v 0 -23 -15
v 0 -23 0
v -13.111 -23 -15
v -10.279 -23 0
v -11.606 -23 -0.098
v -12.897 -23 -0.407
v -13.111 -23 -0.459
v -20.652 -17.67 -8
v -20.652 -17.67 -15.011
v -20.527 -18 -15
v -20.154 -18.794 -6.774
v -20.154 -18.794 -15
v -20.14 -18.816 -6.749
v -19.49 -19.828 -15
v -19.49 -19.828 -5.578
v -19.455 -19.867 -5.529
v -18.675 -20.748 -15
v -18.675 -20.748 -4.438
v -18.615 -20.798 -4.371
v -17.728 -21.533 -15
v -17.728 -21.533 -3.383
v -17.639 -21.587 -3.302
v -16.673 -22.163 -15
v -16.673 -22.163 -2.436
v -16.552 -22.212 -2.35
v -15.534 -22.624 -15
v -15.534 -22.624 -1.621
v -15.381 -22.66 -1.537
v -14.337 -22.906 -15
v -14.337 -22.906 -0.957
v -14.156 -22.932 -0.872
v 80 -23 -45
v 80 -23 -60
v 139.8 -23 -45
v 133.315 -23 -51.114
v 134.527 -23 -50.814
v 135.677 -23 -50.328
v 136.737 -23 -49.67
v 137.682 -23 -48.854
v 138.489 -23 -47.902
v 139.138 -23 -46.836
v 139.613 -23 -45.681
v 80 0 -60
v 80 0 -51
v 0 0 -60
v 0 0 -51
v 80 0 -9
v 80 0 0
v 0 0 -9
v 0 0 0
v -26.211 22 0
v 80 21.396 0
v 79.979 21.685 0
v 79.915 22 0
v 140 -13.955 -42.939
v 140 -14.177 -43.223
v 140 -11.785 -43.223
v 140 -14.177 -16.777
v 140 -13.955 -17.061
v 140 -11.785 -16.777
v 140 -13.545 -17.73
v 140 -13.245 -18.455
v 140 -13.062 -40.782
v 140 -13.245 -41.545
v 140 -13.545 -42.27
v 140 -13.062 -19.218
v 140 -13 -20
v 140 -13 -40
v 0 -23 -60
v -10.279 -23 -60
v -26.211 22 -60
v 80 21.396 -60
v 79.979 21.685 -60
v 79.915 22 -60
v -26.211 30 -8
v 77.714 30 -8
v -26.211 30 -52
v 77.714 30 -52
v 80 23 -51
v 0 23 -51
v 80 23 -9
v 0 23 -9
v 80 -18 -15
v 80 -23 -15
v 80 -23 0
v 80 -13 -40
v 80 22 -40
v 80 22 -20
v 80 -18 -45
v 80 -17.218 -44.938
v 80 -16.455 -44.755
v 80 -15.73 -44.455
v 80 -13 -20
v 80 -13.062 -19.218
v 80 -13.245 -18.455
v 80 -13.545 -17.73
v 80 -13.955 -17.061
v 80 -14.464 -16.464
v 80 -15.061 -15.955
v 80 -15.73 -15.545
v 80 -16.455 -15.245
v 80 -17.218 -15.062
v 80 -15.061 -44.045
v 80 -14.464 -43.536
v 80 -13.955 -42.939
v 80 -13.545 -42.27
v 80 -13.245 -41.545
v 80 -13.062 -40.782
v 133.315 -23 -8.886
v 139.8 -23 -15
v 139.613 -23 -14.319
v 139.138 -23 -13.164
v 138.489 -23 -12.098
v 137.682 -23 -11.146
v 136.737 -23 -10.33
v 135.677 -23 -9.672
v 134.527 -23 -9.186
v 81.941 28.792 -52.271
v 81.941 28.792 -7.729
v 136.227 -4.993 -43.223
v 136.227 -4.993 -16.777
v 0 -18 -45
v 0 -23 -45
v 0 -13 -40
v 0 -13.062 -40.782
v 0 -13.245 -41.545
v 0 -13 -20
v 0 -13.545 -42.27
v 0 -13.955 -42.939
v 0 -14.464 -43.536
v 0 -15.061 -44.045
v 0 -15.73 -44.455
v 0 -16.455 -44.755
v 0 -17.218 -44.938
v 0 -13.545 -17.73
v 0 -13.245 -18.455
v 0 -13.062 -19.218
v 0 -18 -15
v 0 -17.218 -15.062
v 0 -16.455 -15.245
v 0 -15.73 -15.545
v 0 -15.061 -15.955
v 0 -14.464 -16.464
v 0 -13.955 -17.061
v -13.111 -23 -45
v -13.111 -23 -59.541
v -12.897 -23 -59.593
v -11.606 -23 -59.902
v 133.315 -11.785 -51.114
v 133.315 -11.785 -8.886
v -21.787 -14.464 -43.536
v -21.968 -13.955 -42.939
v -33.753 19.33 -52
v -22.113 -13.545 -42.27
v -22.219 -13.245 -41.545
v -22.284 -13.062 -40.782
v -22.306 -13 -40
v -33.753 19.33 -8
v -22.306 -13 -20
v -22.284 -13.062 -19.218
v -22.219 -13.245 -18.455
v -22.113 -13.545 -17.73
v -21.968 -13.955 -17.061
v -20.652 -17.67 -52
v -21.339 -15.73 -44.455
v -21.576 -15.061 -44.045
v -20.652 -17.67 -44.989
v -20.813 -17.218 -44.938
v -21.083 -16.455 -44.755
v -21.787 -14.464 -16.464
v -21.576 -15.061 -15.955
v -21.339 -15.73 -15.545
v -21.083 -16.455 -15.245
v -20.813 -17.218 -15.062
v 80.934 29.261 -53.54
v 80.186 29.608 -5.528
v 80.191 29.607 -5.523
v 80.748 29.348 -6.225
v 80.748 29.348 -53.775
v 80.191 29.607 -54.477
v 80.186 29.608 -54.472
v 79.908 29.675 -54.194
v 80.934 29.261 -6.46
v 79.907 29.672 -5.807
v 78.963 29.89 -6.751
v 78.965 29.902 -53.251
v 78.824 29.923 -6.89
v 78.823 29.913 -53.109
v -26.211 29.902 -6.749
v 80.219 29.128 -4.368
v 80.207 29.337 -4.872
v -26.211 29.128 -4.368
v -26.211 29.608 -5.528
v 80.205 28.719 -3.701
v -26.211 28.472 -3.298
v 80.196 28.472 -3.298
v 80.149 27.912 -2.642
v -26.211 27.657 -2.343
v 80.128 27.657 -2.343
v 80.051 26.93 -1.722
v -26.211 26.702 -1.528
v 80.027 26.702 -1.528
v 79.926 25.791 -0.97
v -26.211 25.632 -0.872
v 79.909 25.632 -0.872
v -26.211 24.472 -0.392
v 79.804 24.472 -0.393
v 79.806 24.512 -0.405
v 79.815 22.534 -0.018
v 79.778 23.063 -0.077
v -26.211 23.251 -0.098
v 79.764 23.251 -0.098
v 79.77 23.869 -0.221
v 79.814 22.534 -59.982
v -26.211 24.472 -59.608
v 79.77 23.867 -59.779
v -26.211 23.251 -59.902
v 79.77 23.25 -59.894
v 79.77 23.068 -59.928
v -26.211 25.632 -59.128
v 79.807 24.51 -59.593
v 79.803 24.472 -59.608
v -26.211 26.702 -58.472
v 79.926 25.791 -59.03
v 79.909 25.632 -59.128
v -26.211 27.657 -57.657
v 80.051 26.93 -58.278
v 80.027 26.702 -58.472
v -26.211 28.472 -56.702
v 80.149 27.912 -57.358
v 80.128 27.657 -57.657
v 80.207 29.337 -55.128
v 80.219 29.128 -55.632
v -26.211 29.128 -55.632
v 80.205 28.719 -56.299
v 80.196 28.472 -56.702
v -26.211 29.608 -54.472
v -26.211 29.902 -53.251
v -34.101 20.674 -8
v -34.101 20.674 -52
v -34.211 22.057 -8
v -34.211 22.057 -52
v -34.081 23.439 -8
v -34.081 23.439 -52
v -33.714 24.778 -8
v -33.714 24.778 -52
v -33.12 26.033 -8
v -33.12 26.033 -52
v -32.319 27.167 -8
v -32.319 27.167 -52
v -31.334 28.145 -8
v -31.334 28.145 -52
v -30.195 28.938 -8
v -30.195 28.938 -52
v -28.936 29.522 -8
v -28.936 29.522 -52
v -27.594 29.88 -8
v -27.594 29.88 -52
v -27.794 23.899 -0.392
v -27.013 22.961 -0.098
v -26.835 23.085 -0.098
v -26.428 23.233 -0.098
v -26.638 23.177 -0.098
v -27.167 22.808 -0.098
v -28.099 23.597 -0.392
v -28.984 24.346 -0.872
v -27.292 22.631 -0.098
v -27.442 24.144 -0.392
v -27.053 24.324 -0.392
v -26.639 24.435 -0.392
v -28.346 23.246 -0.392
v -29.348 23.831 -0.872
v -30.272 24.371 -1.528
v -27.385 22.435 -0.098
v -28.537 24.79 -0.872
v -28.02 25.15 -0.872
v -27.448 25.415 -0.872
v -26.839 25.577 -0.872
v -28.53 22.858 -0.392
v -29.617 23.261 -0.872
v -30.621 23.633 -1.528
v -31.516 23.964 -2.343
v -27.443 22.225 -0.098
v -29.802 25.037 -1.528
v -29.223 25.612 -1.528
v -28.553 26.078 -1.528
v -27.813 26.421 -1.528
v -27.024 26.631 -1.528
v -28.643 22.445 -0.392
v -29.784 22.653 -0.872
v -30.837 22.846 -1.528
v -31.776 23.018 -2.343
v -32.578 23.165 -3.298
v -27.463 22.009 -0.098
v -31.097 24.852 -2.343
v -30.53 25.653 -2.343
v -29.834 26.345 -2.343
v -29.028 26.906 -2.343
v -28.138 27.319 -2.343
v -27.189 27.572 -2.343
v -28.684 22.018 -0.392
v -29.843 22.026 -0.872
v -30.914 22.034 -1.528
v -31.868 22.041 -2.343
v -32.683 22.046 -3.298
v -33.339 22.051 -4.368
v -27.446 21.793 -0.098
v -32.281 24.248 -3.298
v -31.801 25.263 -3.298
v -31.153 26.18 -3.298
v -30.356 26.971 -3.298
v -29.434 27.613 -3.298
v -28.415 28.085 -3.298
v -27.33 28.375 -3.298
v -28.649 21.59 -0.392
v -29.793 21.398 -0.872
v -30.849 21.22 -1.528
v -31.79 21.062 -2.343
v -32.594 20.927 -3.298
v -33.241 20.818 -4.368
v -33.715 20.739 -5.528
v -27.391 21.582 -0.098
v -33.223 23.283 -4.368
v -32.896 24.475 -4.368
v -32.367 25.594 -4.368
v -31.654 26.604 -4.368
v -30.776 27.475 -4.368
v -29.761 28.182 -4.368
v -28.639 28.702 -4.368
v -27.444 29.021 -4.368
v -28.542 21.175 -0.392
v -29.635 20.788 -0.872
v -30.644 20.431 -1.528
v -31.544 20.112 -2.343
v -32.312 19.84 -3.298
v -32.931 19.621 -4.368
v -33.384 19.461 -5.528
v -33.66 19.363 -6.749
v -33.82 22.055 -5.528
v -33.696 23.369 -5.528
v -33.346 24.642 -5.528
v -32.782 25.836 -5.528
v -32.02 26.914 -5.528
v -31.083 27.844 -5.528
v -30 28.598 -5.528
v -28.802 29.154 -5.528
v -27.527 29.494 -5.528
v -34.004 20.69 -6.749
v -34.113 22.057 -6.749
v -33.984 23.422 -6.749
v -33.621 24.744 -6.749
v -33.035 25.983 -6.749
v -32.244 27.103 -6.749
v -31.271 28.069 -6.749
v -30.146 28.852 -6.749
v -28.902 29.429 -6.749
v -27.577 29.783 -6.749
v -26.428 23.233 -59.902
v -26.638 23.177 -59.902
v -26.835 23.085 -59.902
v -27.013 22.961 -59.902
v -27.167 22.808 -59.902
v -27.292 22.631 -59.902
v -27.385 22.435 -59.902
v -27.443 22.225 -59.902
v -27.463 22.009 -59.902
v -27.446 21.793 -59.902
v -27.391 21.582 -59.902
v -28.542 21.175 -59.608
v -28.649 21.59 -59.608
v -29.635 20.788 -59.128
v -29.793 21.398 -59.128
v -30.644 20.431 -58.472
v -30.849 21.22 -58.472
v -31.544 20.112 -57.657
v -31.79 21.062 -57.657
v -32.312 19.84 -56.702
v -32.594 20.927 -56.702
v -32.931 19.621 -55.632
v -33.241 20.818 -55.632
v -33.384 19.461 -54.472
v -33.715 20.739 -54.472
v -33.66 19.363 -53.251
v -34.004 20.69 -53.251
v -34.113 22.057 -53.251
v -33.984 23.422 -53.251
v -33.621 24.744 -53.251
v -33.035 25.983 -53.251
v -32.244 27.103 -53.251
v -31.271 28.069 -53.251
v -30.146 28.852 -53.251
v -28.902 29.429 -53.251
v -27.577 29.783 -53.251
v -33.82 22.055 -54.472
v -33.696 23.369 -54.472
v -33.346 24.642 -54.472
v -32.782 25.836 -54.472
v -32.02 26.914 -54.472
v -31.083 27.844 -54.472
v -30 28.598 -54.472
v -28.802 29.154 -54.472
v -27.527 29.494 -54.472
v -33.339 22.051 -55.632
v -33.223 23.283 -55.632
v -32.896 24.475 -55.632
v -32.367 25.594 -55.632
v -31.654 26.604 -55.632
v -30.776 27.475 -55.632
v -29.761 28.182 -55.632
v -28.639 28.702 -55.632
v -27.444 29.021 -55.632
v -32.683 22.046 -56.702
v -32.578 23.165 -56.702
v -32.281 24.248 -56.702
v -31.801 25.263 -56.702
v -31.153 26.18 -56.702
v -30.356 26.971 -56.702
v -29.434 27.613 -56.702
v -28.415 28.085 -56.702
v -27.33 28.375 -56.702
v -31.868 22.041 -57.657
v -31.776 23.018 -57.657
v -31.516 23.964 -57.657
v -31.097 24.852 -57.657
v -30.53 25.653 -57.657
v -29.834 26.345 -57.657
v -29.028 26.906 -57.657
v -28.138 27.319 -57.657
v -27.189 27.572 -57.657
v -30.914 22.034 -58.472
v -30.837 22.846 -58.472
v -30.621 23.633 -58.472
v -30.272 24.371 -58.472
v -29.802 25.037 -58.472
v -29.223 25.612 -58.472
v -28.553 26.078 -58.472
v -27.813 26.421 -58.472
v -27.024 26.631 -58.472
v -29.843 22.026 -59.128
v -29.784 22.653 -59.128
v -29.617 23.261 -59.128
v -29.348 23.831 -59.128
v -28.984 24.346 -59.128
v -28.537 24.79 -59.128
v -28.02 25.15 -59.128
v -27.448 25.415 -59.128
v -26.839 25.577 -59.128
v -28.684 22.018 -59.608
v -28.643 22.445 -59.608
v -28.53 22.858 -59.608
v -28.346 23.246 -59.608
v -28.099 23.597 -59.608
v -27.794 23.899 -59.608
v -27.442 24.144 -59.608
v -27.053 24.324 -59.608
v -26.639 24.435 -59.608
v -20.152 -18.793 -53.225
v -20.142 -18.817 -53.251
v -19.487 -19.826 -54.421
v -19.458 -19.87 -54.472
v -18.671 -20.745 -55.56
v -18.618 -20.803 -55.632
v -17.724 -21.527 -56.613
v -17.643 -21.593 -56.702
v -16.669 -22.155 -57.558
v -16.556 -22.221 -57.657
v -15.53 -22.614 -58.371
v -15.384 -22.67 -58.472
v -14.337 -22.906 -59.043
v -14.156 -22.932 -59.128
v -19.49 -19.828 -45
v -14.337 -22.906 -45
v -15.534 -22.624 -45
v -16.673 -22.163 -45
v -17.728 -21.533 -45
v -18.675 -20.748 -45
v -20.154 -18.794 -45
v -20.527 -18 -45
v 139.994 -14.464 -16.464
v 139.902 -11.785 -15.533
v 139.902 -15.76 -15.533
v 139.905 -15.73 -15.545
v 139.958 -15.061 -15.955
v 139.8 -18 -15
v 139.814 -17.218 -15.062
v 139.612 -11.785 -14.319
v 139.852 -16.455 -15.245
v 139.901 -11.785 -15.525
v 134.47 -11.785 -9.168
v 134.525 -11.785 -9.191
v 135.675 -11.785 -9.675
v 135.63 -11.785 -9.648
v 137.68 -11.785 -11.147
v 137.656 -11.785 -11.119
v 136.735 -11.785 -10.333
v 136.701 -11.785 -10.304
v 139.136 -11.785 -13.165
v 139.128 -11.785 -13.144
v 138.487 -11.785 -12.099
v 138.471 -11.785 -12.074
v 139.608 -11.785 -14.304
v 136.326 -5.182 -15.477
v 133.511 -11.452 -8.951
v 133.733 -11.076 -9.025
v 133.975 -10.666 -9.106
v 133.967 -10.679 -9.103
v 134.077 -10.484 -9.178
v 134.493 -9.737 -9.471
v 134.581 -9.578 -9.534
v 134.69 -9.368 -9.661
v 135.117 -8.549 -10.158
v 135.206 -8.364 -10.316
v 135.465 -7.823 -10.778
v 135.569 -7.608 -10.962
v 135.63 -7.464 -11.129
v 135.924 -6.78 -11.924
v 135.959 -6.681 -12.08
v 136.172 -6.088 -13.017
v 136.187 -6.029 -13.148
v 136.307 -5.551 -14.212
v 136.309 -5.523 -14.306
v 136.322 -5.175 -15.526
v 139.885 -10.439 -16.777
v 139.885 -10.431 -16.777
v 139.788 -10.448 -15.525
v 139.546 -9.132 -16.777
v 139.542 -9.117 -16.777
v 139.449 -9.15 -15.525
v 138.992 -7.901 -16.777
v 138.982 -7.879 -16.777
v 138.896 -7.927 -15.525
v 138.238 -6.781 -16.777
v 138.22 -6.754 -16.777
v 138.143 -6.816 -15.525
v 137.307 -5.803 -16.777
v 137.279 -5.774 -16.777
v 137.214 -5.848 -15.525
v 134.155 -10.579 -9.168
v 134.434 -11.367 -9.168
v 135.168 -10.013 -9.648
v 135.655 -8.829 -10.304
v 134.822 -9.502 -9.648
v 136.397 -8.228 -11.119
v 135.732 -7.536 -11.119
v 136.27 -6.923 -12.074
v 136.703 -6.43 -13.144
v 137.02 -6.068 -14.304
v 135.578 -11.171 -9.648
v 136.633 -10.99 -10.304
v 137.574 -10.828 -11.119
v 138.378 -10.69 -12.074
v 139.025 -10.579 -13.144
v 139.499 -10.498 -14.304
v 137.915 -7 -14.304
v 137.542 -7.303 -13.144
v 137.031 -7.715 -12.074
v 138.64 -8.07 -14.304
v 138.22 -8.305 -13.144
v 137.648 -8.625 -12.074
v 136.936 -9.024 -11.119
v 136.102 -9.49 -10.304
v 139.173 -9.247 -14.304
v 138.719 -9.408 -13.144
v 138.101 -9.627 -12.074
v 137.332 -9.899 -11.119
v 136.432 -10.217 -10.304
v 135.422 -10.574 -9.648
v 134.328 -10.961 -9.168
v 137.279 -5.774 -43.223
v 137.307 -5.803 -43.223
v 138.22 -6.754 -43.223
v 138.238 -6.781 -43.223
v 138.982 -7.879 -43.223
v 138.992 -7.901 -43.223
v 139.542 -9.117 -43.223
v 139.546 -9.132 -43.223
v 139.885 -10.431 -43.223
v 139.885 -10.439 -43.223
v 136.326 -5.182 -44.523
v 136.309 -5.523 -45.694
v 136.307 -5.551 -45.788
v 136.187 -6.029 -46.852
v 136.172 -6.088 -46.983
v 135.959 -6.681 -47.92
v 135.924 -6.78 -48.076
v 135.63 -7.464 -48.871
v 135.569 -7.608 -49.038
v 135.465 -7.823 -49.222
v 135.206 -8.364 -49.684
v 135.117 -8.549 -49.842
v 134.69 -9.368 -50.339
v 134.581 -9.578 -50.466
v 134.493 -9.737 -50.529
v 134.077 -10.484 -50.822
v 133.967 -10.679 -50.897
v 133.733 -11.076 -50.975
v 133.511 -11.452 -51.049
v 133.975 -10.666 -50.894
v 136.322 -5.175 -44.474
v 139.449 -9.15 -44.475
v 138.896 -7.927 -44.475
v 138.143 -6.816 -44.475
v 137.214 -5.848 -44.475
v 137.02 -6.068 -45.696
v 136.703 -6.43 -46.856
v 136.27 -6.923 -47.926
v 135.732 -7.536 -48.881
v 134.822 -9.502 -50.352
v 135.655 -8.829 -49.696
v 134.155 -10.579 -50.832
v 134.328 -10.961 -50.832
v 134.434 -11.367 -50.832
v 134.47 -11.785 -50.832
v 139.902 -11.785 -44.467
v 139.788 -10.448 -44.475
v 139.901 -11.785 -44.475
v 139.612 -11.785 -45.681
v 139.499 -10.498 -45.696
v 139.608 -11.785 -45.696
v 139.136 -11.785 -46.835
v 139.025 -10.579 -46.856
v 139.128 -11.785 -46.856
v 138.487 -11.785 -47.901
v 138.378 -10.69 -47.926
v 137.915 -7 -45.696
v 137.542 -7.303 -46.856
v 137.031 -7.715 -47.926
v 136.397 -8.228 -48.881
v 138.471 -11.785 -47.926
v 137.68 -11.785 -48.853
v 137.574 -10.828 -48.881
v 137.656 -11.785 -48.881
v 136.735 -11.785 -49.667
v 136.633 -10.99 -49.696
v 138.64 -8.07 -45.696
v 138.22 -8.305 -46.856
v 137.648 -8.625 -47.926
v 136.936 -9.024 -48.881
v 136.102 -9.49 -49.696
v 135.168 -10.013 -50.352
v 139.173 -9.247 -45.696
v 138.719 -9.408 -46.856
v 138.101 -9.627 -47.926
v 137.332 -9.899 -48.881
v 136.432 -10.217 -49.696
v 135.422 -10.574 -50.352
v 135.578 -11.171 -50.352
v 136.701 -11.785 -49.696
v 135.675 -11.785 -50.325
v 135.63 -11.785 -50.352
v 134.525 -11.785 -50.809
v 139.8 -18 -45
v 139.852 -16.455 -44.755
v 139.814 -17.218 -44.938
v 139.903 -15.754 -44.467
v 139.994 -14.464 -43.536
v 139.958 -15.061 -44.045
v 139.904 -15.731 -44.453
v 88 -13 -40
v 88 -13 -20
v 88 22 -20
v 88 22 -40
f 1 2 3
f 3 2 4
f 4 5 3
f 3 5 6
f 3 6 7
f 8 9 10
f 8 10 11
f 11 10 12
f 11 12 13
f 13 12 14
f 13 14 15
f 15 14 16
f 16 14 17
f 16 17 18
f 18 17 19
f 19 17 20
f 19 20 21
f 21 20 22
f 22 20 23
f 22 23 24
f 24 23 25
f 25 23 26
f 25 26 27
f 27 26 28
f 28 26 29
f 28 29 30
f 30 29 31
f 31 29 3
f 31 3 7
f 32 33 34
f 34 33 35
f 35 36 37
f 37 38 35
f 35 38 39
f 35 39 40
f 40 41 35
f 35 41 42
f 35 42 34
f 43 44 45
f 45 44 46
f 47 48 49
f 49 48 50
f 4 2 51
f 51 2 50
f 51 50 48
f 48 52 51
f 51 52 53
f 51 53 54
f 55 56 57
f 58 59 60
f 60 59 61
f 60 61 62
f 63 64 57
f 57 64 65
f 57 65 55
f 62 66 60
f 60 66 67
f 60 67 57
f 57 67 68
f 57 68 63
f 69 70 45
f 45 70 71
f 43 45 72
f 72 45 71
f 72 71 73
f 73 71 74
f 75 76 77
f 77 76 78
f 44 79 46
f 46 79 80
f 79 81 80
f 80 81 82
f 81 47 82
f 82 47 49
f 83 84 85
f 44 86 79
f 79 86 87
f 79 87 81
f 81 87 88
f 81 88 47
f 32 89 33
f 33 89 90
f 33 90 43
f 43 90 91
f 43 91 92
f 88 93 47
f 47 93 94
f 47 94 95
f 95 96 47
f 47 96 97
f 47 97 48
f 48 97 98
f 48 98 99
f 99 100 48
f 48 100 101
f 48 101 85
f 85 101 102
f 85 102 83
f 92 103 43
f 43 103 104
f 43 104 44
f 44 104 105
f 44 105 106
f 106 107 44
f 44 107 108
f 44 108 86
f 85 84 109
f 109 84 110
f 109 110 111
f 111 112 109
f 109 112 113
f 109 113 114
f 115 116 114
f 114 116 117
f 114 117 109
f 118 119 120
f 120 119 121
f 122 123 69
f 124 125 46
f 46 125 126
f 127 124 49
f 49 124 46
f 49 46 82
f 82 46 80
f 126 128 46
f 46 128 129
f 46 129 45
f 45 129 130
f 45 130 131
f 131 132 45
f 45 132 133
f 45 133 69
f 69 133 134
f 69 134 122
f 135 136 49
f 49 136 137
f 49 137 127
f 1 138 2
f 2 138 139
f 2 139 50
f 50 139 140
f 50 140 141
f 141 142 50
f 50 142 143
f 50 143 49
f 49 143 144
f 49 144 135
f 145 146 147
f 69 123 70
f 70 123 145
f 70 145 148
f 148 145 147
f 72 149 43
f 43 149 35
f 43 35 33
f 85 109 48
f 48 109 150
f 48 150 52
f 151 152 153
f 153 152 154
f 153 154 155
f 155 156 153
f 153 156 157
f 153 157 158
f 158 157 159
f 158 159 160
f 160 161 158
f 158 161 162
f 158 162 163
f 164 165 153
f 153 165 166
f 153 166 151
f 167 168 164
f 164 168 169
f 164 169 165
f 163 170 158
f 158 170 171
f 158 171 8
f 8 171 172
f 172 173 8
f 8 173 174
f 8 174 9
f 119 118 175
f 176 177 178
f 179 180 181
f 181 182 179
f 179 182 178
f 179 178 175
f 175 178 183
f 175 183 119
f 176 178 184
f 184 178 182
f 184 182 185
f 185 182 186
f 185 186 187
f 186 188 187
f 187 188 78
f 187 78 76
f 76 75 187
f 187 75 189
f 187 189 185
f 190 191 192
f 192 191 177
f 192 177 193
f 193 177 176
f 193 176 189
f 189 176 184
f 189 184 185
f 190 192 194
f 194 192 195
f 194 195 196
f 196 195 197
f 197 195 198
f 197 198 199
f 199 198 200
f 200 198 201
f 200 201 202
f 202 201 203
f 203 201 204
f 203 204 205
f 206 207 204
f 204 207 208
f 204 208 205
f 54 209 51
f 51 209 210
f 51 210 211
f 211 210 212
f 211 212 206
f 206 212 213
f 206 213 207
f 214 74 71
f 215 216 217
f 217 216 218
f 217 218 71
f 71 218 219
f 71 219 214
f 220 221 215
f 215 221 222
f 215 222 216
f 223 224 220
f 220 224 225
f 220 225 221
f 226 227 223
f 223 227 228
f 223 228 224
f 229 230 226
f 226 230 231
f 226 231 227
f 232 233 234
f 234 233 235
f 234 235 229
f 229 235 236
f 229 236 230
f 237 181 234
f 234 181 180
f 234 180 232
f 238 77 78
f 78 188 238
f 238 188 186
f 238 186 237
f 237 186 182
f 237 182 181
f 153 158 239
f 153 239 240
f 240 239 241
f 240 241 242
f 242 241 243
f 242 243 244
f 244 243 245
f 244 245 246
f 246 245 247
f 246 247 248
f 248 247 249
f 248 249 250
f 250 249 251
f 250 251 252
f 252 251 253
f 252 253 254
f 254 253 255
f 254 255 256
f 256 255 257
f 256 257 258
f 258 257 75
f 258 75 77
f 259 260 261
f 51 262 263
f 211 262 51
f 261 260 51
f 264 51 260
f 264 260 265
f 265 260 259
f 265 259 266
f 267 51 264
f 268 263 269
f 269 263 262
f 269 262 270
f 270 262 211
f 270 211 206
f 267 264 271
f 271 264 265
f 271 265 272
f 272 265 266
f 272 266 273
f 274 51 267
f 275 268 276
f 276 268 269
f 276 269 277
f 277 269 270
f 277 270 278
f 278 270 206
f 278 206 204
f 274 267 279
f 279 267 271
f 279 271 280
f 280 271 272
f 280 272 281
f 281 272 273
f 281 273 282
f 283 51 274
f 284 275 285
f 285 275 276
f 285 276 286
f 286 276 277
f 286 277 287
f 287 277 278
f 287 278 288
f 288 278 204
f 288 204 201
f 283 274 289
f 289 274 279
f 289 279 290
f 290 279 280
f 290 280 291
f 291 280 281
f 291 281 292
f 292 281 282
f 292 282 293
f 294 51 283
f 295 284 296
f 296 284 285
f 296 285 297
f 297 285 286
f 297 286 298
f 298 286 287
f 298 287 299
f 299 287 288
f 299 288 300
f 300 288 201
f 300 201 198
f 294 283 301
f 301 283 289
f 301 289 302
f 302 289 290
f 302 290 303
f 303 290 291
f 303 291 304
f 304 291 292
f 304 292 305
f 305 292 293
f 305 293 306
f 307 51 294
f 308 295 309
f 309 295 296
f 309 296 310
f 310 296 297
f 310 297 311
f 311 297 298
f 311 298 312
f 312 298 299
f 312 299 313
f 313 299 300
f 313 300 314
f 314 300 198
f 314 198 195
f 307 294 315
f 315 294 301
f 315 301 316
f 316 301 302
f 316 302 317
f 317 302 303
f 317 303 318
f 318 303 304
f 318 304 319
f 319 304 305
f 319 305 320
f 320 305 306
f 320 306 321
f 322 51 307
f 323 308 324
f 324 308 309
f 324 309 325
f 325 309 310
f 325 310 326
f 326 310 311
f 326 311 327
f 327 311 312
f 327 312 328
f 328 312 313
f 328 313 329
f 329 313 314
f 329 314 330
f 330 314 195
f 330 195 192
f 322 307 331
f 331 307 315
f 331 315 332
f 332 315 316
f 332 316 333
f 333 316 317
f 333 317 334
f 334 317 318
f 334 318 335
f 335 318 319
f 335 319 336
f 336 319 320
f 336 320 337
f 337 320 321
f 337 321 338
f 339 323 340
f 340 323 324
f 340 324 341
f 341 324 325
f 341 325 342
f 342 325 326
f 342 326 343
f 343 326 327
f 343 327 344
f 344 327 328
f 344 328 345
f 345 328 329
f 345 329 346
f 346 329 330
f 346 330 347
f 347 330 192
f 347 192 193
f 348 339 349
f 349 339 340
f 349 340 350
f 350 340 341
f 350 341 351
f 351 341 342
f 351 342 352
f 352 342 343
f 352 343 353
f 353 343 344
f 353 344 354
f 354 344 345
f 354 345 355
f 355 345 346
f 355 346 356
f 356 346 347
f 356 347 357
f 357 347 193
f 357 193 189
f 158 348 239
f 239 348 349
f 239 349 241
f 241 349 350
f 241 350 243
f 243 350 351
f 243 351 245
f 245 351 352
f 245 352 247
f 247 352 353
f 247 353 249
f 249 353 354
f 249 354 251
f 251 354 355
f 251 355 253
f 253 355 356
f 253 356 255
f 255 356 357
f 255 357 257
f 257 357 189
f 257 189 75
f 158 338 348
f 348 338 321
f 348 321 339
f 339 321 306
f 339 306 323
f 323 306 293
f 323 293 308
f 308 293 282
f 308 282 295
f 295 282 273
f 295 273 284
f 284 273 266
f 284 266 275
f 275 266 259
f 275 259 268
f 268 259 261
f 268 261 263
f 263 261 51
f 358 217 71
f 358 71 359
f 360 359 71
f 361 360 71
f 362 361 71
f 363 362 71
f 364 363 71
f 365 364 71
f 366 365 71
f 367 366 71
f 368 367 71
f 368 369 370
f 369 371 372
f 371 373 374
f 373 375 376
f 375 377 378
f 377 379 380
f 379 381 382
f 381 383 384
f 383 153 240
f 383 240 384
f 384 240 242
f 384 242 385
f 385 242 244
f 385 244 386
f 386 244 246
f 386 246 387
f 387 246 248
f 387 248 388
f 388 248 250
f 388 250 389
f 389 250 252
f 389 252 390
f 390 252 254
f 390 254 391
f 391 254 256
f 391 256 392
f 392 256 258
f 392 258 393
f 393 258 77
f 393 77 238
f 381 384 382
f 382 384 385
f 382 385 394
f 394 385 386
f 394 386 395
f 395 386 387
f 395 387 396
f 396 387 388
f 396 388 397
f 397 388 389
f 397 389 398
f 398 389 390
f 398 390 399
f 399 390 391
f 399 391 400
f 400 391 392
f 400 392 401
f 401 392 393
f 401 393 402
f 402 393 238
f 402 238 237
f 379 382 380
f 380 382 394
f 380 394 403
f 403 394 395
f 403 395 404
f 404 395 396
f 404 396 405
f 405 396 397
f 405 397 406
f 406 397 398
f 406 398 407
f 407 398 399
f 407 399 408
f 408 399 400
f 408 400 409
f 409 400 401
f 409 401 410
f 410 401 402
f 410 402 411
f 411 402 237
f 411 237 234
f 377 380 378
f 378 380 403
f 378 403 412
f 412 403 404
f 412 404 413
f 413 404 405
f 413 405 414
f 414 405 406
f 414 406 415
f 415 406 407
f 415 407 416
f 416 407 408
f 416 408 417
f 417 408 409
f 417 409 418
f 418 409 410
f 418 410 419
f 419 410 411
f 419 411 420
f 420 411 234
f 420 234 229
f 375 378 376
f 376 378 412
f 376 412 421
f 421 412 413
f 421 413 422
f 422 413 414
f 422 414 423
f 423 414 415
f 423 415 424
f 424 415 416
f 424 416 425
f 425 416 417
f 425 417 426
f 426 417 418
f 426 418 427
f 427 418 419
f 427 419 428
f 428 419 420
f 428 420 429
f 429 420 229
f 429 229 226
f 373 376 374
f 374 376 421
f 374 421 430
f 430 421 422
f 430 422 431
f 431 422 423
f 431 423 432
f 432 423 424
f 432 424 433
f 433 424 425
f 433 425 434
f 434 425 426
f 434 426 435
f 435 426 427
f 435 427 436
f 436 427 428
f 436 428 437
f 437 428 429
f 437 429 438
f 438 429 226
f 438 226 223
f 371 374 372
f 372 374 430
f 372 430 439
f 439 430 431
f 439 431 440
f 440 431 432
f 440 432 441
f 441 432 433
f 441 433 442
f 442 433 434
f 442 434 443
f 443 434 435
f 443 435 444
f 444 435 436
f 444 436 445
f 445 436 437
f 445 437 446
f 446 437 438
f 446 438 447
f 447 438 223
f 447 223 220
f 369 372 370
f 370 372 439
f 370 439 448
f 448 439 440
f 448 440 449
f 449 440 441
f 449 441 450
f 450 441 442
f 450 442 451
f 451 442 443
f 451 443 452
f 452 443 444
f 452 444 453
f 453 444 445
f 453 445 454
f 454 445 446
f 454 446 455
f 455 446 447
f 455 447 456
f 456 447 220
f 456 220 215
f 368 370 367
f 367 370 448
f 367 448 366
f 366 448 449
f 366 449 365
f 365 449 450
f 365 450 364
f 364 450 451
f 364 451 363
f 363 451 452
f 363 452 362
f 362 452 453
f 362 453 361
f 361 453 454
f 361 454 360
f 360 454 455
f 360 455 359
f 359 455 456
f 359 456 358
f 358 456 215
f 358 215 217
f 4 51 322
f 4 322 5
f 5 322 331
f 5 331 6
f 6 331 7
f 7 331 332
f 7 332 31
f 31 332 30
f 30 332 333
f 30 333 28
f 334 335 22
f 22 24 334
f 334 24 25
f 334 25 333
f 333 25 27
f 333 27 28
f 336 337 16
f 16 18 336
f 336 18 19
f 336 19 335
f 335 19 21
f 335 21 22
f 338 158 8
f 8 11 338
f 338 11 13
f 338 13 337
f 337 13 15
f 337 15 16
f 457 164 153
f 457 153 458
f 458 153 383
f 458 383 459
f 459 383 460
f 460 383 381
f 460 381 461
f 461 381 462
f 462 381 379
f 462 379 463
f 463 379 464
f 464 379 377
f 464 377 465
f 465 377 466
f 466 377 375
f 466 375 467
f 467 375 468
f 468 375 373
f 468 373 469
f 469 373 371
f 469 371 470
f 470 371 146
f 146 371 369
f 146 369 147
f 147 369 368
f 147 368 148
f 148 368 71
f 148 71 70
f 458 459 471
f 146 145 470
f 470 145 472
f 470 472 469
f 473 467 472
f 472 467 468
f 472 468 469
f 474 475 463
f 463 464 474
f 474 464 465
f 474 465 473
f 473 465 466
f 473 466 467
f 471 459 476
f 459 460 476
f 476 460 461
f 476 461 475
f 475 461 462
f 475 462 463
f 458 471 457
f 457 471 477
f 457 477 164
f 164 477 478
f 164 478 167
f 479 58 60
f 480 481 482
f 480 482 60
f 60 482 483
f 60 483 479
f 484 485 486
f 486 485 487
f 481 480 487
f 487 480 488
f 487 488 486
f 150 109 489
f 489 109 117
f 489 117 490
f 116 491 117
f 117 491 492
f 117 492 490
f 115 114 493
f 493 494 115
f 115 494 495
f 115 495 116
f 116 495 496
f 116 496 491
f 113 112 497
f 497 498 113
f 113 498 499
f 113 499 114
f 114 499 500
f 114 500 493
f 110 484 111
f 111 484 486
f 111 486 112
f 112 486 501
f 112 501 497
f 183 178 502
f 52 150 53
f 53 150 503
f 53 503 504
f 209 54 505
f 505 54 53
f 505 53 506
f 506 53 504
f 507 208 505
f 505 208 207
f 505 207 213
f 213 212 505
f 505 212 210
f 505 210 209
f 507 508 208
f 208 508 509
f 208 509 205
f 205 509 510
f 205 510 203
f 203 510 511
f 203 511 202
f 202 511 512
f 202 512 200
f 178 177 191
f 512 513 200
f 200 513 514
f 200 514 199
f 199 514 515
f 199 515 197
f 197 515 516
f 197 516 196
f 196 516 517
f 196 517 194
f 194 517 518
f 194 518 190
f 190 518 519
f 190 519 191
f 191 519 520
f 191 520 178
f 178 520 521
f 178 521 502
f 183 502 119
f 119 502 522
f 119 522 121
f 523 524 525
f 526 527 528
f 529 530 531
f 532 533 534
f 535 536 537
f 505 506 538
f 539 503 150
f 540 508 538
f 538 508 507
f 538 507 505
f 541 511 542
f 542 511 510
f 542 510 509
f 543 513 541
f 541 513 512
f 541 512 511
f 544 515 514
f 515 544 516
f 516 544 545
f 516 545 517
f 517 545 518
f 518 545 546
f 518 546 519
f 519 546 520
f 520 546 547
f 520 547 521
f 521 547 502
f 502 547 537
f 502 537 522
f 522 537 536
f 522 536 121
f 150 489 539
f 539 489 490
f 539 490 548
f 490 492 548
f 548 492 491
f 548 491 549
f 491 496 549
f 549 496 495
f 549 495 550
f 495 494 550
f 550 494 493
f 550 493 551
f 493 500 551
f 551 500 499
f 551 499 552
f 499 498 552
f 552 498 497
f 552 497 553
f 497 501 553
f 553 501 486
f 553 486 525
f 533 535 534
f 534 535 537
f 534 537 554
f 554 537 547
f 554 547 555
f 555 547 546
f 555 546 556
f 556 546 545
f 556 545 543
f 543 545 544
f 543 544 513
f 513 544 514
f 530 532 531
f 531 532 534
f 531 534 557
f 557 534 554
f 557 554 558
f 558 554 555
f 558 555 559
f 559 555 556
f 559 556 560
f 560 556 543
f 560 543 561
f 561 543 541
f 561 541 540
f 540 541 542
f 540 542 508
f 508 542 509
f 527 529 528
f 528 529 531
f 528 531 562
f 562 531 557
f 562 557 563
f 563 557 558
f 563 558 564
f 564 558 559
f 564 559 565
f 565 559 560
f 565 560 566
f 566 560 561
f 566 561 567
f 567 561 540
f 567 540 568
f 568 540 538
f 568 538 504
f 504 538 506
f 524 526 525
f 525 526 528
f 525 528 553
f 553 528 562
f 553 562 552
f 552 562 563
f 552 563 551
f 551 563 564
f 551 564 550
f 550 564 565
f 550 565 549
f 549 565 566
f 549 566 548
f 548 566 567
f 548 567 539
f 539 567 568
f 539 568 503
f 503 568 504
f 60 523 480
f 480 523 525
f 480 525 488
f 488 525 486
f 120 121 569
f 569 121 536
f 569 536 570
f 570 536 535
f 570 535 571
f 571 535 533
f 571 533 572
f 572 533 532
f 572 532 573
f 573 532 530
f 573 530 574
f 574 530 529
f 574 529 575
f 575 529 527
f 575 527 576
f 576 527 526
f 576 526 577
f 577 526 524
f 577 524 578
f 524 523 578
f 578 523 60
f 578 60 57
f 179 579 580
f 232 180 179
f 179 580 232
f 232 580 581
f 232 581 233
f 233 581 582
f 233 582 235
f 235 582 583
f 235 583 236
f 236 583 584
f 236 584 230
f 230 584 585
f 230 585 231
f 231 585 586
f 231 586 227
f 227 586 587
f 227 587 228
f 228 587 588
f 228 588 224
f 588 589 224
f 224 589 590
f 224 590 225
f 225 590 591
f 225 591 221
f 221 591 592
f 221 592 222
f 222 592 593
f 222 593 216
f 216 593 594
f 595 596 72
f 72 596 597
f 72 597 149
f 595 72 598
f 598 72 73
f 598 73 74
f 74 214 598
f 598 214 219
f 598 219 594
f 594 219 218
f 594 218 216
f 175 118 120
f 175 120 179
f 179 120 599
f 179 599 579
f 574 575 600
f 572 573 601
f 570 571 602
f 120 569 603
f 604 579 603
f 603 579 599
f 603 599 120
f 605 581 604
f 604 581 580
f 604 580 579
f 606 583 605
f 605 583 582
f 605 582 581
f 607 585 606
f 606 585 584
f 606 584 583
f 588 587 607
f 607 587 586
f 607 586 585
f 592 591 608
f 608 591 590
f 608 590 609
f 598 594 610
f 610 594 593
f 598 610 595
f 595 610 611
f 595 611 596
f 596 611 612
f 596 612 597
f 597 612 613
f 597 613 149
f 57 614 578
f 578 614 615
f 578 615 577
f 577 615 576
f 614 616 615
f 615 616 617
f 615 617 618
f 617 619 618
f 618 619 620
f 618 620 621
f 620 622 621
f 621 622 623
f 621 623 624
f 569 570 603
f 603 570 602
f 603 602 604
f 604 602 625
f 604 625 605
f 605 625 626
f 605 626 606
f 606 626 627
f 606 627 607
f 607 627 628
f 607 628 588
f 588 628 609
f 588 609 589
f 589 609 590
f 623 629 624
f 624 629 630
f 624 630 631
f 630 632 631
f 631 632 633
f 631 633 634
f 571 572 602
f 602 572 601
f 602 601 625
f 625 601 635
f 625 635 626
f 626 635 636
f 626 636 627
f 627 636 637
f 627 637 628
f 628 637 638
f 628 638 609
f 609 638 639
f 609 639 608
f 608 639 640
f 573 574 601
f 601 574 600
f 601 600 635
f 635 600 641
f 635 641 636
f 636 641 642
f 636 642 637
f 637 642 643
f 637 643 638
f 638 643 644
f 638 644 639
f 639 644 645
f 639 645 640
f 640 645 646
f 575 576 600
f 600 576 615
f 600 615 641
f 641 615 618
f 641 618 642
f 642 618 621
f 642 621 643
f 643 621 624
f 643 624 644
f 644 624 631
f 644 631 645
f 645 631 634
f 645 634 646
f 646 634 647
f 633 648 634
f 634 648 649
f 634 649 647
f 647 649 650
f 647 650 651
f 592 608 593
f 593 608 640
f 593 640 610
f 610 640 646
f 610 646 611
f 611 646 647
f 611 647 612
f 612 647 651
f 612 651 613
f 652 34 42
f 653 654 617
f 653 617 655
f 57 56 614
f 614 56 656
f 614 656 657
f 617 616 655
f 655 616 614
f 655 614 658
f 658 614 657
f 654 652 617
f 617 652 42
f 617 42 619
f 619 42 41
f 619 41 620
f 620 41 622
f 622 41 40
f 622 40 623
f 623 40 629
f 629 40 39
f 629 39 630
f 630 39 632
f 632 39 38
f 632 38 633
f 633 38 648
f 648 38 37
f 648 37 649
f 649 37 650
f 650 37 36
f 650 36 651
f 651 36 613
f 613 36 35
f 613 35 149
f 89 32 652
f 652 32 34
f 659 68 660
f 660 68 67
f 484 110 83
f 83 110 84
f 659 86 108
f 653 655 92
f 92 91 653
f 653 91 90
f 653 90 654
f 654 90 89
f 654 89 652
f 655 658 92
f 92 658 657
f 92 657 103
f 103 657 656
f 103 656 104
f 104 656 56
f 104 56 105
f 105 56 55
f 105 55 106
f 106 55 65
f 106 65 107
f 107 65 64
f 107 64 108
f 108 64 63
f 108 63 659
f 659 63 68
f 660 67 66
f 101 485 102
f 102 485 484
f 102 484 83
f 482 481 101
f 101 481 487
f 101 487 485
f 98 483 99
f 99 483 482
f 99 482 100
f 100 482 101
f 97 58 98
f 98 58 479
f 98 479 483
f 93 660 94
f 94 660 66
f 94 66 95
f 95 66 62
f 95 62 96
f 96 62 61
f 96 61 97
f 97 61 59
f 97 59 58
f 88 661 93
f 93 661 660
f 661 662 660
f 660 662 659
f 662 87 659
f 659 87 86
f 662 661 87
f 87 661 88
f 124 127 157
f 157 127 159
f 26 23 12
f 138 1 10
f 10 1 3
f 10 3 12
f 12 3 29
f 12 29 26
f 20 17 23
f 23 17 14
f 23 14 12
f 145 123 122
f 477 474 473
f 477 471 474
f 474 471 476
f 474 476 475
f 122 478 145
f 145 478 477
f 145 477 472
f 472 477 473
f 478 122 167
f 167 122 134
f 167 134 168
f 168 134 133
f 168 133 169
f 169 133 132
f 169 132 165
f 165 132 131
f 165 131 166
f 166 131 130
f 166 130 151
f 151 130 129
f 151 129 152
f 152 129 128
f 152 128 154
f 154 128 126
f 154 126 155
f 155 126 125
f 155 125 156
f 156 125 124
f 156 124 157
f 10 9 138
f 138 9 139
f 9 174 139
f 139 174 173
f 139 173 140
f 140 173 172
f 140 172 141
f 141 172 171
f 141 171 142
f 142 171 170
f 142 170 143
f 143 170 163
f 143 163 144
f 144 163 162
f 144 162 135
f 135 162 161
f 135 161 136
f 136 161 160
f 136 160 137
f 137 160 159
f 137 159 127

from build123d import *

# Parameters (mm, degrees)
SKETCH1_W            = 140
SKETCH1_H            = 60
BOSS_EXTRUDE2_DEPTH  = 30
SKETCH2_W            = 42
SKETCH2_H            = 23
CUT_EXTRUDE1_DEPTH   = 80
SKETCH3_W            = 60
SKETCH3_H            = 60
BOSS_EXTRUDE3_DEPTH  = 23
CUT_EXTRUDE6_DEPTH   = 156.241746963
SKETCH15_W           = 60
SKETCH15_H           = 30
BOSS_EXTRUDE9_DEPTH  = 20
SKETCH16_W           = 20
SKETCH16_H           = 60
BOSS_EXTRUDE10_DEPTH = 23
CUT_EXTRUDE9_DEPTH   = 162.273060367
CUT_EXTRUDE11_DEPTH  = 162.273060367
SKETCH20_W           = 17.5305996
SKETCH20_H           = 53
BOSS_EXTRUDE11_DEPTH = 60
CUT_EXTRUDE12_DEPTH  = 156.241746963
FILLET8_R            = 8
FILLET9_R            = 8
SKETCH22_W           = 30
SKETCH22_H           = 10
CUT_EXTRUDE13_DEPTH  = 133.454739954
FILLET11_R           = 5
SKETCH23_W           = 8
SKETCH23_H           = 20
CUT_EXTRUDE14_DEPTH  = 35
SKETCH24_W           = 30
SKETCH24_H           = 10
CUT_EXTRUDE15_DEPTH  = 35
FILLET12_R           = 5


with BuildPart() as part:
    # Sketch1 → Boss-Extrude2 (new body)
    with BuildSketch(Plane(origin=(0, 0, 0), x_dir=(1, 0, 0), z_dir=(0, 1, 0))):
        with Locations((70, 30)):
            Rectangle(SKETCH1_W, SKETCH1_H)
    extrude(amount=BOSS_EXTRUDE2_DEPTH)

    # Sketch2 → Cut-Extrude1 (cut)
    with BuildSketch(Plane.ZY):
        with Locations((-30, 11.5)):
            Rectangle(SKETCH2_W, SKETCH2_H)
    extrude(amount=-CUT_EXTRUDE1_DEPTH, mode=Mode.SUBTRACT)

    # Sketch3 → Boss-Extrude3 (add)
    with BuildSketch(Plane.XZ):
        with Locations((110, -30)):
            Rectangle(SKETCH3_W, SKETCH3_H)
    extrude(amount=BOSS_EXTRUDE3_DEPTH)

    # Sketch4 → Cut-Extrude6 (cut, through all)
    with BuildSketch(Plane.XY):
        Polygon((140, -7.341177678), (80, 30), (140, 30), align=None)
    extrude(amount=-CUT_EXTRUDE6_DEPTH, mode=Mode.SUBTRACT)

    # Sketch15 → Boss-Extrude9 (add)
    with BuildSketch(Plane.ZY):
        with Locations((-30, 15)):
            Rectangle(SKETCH15_W, SKETCH15_H)
    extrude(amount=BOSS_EXTRUDE9_DEPTH)

    # Sketch16 → Boss-Extrude10 (add)
    with BuildSketch(Plane.XZ):
        with Locations((-10, -30)):
            Rectangle(SKETCH16_W, SKETCH16_H)
    extrude(amount=BOSS_EXTRUDE10_DEPTH)

    # Sketch17 → Cut-Extrude9 (cut, through all)
    with BuildSketch(Plane.XZ.offset(23)):
        Polygon((80, -60), (140, -50), (140, -60), align=None)
    extrude(amount=-CUT_EXTRUDE9_DEPTH, mode=Mode.SUBTRACT)

    # Sketch18 → Cut-Extrude11 (cut, through all)
    with BuildSketch(Plane.XZ.offset(23)):
        Polygon((80, 0), (140, -10), (140, 0), align=None)
    extrude(amount=-CUT_EXTRUDE11_DEPTH, mode=Mode.SUBTRACT)

    # Sketch20 → Boss-Extrude11 (add, through all)
    with BuildSketch(Plane(origin=(0, 0, -60), x_dir=(-1, 0, 0), z_dir=(0, 0, -1))):
        with Locations((28.7652998, 3.5)):
            Rectangle(SKETCH20_W, SKETCH20_H)
    extrude(amount=-BOSS_EXTRUDE11_DEPTH)

    # Sketch21 → Cut-Extrude12 (cut, through all)
    with BuildSketch(Plane(origin=(0, 0, -60), x_dir=(-1, 0, 0), z_dir=(0, 0, -1))):
        Polygon((18.7652998, -23), (37.5305996, 30), (37.5305996, -23), align=None)
    extrude(amount=-CUT_EXTRUDE12_DEPTH, mode=Mode.SUBTRACT)

    # Fillet8
    # the kernel refuses this fillet: 8 mm, written as the material it takes off along each edge
    with BuildSketch(Plane(origin=(-26.211462289, 22, -52), x_dir=(0, 1, 0), z_dir=(0, 0, -1))) as fillet8_piece_1_section:
        Polygon((0, 0), (FILLET8_R, 0), (FILLET8_R, -FILLET8_R * 1.41489216391), (-FILLET8_R * 0.333759690599, -FILLET8_R * 0.942658193054), align=None)
    fillet8_piece_1 = extrude(amount=FILLET8_R, mode=Mode.PRIVATE)
    fillet8_piece_1 = fillet8_piece_1 - Plane(origin=(-26.211462289, 22, -52), x_dir=(0.816627115211936, -0.5771656215512417, 0), z_dir=(0, 0, -1)) * Sphere(FILLET8_R, mode=Mode.PRIVATE)
    add(fillet8_piece_1, mode=Mode.SUBTRACT)
    with BuildSketch(Plane(origin=(-26.211462289, 22, -8), x_dir=(0, 1, 0), z_dir=(0, 0, 1))) as fillet8_piece_2_section:
        Polygon((0, 0), (FILLET8_R, 0), (FILLET8_R, FILLET8_R * 1.41489216391), (-FILLET8_R * 0.333759690599, FILLET8_R * 0.942658193054), align=None)
    fillet8_piece_2 = extrude(amount=FILLET8_R, mode=Mode.PRIVATE)
    fillet8_piece_2 = fillet8_piece_2 - Plane(origin=(-26.211462289, 22, -8), x_dir=(0.816627115211936, -0.5771656215512417, 0), z_dir=(0, 0, 1)) * Sphere(FILLET8_R, mode=Mode.PRIVATE)
    add(fillet8_piece_2, mode=Mode.SUBTRACT)
    with BuildSketch(Plane(origin=(-37.5305996, 30, -52), x_dir=(1, 0, 0), z_dir=(0, 0, 1))) as fillet8_piece_3:
        with BuildLine():
            CenterArc((FILLET8_R * 1.41489216391, -FILLET8_R), FILLET8_R, 90, 109.497133014)
            Line((FILLET8_R * 0.472233970858, -FILLET8_R * 1.3337596906), (0, 0))
            Line((0, 0), (FILLET8_R * 1.41489216391, 0))
        make_face()
    extrude(amount=44, mode=Mode.SUBTRACT)
    with BuildSketch(Plane(origin=(-33.752727833, 19.329922475, 0), x_dir=(0, 0, -1), z_dir=(0.3337596905987375, -0.9426581930537893, 0))) as fillet8_piece_4:
        with BuildLine():
            CenterArc((FILLET8_R, FILLET8_R), FILLET8_R, 180, 90)
            Line((0, FILLET8_R), (0, 0))
            Line((0, 0), (FILLET8_R, 0))
        make_face()
    extrude(amount=64.904847576, mode=Mode.SUBTRACT)
    with BuildSketch(Plane(origin=(-18.7652998, -23, -74.135352863), x_dir=(-0.33375969059873745, 0.9426581930537893, 0), z_dir=(0, 0, 1))) as fillet8_piece_5:
        with BuildLine():
            CenterArc((FILLET8_R * 0.706767643151, -FILLET8_R), FILLET8_R, 90, 70.502866986)
            Line((-FILLET8_R * 0.235890549903, -FILLET8_R * 0.666240309401), (0, 0))
            Line((0, 0), (FILLET8_R * 0.706767643151, 0))
        make_face()
    extrude(amount=88.270705726, mode=Mode.SUBTRACT)
    with BuildSketch(Plane(origin=(-12.090105988, -41.853163861, -60), x_dir=(0.9426581930537893, 0.3337596905987375, 0), z_dir=(-0.3337596905987375, 0.9426581930537893, 0))) as fillet8_piece_6:
        with BuildLine():
            CenterArc((FILLET8_R, -FILLET8_R), FILLET8_R, 90, 90)
            Line((0, -FILLET8_R), (0, 0))
            Line((0, 0), (FILLET8_R, 0))
        make_face()
    extrude(amount=64.904847576, mode=Mode.SUBTRACT)
    with BuildSketch(Plane(origin=(-26.211462289, 30, -60), x_dir=(0, -1, 0), z_dir=(1, 0, 0)), Plane(origin=(-26.211462289, 30, 0), x_dir=(0, 0, -1), z_dir=(1, 0, 0))) as fillet8_piece_7:
        with BuildLine():
            CenterArc((FILLET8_R, -FILLET8_R), FILLET8_R, 90, 90)
            Line((0, -FILLET8_R), (0, 0))
            Line((0, 0), (FILLET8_R, 0))
        make_face()
    extrude(amount=166.211462289, mode=Mode.SUBTRACT)
    with BuildSketch(Plane(origin=(80, 30, 5.715305101), x_dir=(-1, 0, 0), z_dir=(0, 0, -1))) as fillet8_piece_8:
        with BuildLine():
            CenterArc((FILLET8_R * 0.285765255038, -FILLET8_R), FILLET8_R, 90, 31.896191579)
            Line((-FILLET8_R * 0.24261664781, -FILLET8_R * 0.150993189225), (0, 0))
            Line((0, 0), (FILLET8_R * 0.285765255038, 0))
        make_face()
    extrude(amount=71.430610202, mode=Mode.SUBTRACT)

    # Fillet9
    # the kernel refuses this fillet: 8 mm, written as the material it takes off along each edge
    with BuildSketch(Plane(origin=(132, -11.785128809, -43.222983293), x_dir=(-0.48401910269158954, 0.8713310986405968, -0.08066985044859834), z_dir=(0.7927787698772593, 0.3976147054703528, -0.46195710626163544))) as fillet9_piece_1_section:
        Polygon((-13.665079079, -13.665079079), (13.665079079, -13.665079079), (13.665079079, 13.665079079), (-13.665079079, 13.665079079), align=None)
    fillet9_piece_1 = extrude(amount=13.665079079, mode=Mode.PRIVATE)
    fillet9_piece_1 = split(fillet9_piece_1, bisect_by=Plane(origin=(132, -11.785128809, -43.222983293), z_dir=(0.8406327066696059, -0.5231702543590824, 0.1401054511116011)), keep=Keep.TOP, mode=Mode.PRIVATE)
    fillet9_piece_1 = split(fillet9_piece_1, bisect_by=Plane(origin=(132, -11.785128809, -43.222983293), z_dir=(0, 0, -1)), keep=Keep.TOP, mode=Mode.PRIVATE)
    fillet9_piece_1 = split(fillet9_piece_1, bisect_by=Plane(origin=(132, -11.785128809, -43.222983293), z_dir=(0, 1, 0)), keep=Keep.TOP, mode=Mode.PRIVATE)
    fillet9_piece_1 = split(fillet9_piece_1, bisect_by=Plane(origin=(133.315191898, -11.785128809, -51.114134684), z_dir=(-0.16439898730535743, 0, 0.9863939238321437)), keep=Keep.TOP, mode=Mode.PRIVATE)
    fillet9_piece_1 = split(fillet9_piece_1, bisect_by=Plane(origin=(136.227055223, -4.993074323, -43.222983293), z_dir=(-0.5283819028475878, -0.8490068107754862, 0)), keep=Keep.TOP, mode=Mode.PRIVATE)
    fillet9_piece_1 = split(fillet9_piece_1, bisect_by=Plane(origin=(140, -11.785128809, -43.222983293), z_dir=(-1, 0, 0)), keep=Keep.TOP, mode=Mode.PRIVATE)
    fillet9_piece_1 = fillet9_piece_1 - Plane(origin=(132, -11.785128809, -43.222983293), x_dir=(-0.7927787698772593, -0.3976147054703528, 0.46195710626163544), z_dir=(-0.48401910269158954, 0.8713310986405968, -0.08066985044859834)) * Sphere(FILLET9_R, mode=Mode.PRIVATE)
    add(fillet9_piece_1, mode=Mode.SUBTRACT)
    with BuildSketch(Plane(origin=(132, -11.785128809, -16.777016707), x_dir=(0, 0.7579161794569693, -0.6523519486575872), z_dir=(0.7927787698772593, 0.3976147054703528, 0.46195710626163544))) as fillet9_piece_2_section:
        Polygon((-13.665079079, -13.665079079), (13.665079079, -13.665079079), (13.665079079, 13.665079079), (-13.665079079, 13.665079079), align=None)
    fillet9_piece_2 = extrude(amount=13.665079079, mode=Mode.PRIVATE)
    fillet9_piece_2 = split(fillet9_piece_2, bisect_by=Plane(origin=(132, -11.785128809, -16.777016707), z_dir=(0, 0, 1)), keep=Keep.TOP, mode=Mode.PRIVATE)
    fillet9_piece_2 = split(fillet9_piece_2, bisect_by=Plane(origin=(132, -11.785128809, -16.777016707), z_dir=(0.8406327066696059, -0.5231702543590824, -0.140105451111601)), keep=Keep.TOP, mode=Mode.PRIVATE)
    fillet9_piece_2 = split(fillet9_piece_2, bisect_by=Plane(origin=(132, -11.785128809, -16.777016707), z_dir=(0, 1, 0)), keep=Keep.TOP, mode=Mode.PRIVATE)
    fillet9_piece_2 = split(fillet9_piece_2, bisect_by=Plane(origin=(140, -11.785128809, -16.777016707), z_dir=(-1, 0, 0)), keep=Keep.TOP, mode=Mode.PRIVATE)
    fillet9_piece_2 = split(fillet9_piece_2, bisect_by=Plane(origin=(136.227055223, -4.993074323, -16.777016707), z_dir=(-0.5283819028475878, -0.8490068107754862, 0)), keep=Keep.TOP, mode=Mode.PRIVATE)
    fillet9_piece_2 = split(fillet9_piece_2, bisect_by=Plane(origin=(133.315191898, -11.785128809, -8.885865316), z_dir=(-0.1643989873053573, 0, -0.9863939238321437)), keep=Keep.TOP, mode=Mode.PRIVATE)
    fillet9_piece_2 = fillet9_piece_2 - Plane(origin=(132, -11.785128809, -16.777016707), x_dir=(-0.7927787698772593, -0.3976147054703528, -0.46195710626163544), z_dir=(0, 0.7579161794569693, -0.6523519486575872)) * Sphere(FILLET9_R, mode=Mode.PRIVATE)
    add(fillet9_piece_2, mode=Mode.SUBTRACT)
    with BuildSketch(Plane(origin=(140, -39.942541768, -50), x_dir=(-0.9863939238321437, 0, -0.1643989873053573), z_dir=(0, 1, 0)), Plane(origin=(140, -39.942541768, -10), x_dir=(0, 0, -1), z_dir=(0, 1, 0))) as fillet9_piece_3:
        with BuildLine():
            CenterArc((FILLET9_R * 0.847127088383, FILLET9_R), FILLET9_R, 189.462322208, 80.537677792)
            Line((-FILLET9_R * 0.139266835449, FILLET9_R * 0.835601012695), (0, 0))
            Line((0, 0), (FILLET9_R * 0.847127088383, 0))
        make_face()
    extrude(amount=28.157412959, mode=Mode.SUBTRACT)
    with BuildSketch(Plane(origin=(140, -7.341177678, -16.777016707), x_dir=(0, -1, 0), z_dir=(0, 0, -1))) as fillet9_piece_4:
        with BuildLine():
            CenterArc((FILLET9_R * 0.555493891411, FILLET9_R), FILLET9_R, 211.896191579, 58.103808421)
            Line((-FILLET9_R * 0.293512919364, FILLET9_R * 0.471618097152), (0, 0))
            Line((0, 0), (FILLET9_R * 0.555493891411, 0))
        make_face()
    extrude(amount=26.445966586, mode=Mode.SUBTRACT)
    with BuildSketch(Plane(origin=(137.099294602, -5.535915084, -50.4834509), x_dir=(-0.516051960029516, -0.8522281883121756, -0.08600866000491966), z_dir=(-0.840632706669606, 0.5231702543590825, -0.1401054511116011)), Plane(origin=(137.099294602, -5.535915084, -9.5165491), x_dir=(-0.1189504822205207, 0.07402918485766816, -0.9901365878346354), z_dir=(-0.840632706669606, 0.5231702543590825, 0.140105451111601))) as fillet9_piece_5:
        with BuildLine():
            CenterArc((FILLET9_R * 0.916599247, FILLET9_R), FILLET9_R, 184.983304115, 85.016695885)
            Line((-FILLET9_R * 0.0796208058207, FILLET9_R * 0.913134550261), (0, 0))
            Line((0, 0), (FILLET9_R * 0.916599247, 0))
        make_face()
    extrude(amount=78.609137146, mode=Mode.SUBTRACT)

    # Sketch22 → Cut-Extrude13 (cut, through all)
    with BuildSketch(Plane.ZY.offset(-80)):
        with Locations((-30, -18)):
            Rectangle(SKETCH22_W, SKETCH22_H)
    extrude(amount=-CUT_EXTRUDE13_DEPTH, mode=Mode.SUBTRACT)

    # Fillet11
    fillet11_edges = [part.edges().sort_by_distance(p)[0] for p in [
        (109.900070885, -13, -45),
        (109.900070885, -13, -15),
    ]]
    fillet(fillet11_edges, radius=FILLET11_R)

    # Sketch23 → Cut-Extrude14 (cut)
    with BuildSketch(Plane.XZ.offset(13)):
        with Locations((84, -30)):
            Rectangle(SKETCH23_W, SKETCH23_H)
    extrude(amount=-CUT_EXTRUDE14_DEPTH, mode=Mode.SUBTRACT)

    # Sketch24 → Cut-Extrude15 (cut)
    with BuildSketch(Plane(origin=(0, 0, 0), x_dir=(0, 0, -1), z_dir=(1, 0, 0))):
        with Locations((30, -18)):
            Rectangle(SKETCH24_W, SKETCH24_H)
    extrude(amount=-CUT_EXTRUDE15_DEPTH, mode=Mode.SUBTRACT)

    # Fillet12
    fillet12_edges = [part.edges().sort_by_distance(p)[0] for p in [
        (-11.152961202, -13, -45),
        (-11.152961202, -13, -15),
    ]]
    fillet(fillet12_edges, radius=FILLET12_R)


solid = part.part
